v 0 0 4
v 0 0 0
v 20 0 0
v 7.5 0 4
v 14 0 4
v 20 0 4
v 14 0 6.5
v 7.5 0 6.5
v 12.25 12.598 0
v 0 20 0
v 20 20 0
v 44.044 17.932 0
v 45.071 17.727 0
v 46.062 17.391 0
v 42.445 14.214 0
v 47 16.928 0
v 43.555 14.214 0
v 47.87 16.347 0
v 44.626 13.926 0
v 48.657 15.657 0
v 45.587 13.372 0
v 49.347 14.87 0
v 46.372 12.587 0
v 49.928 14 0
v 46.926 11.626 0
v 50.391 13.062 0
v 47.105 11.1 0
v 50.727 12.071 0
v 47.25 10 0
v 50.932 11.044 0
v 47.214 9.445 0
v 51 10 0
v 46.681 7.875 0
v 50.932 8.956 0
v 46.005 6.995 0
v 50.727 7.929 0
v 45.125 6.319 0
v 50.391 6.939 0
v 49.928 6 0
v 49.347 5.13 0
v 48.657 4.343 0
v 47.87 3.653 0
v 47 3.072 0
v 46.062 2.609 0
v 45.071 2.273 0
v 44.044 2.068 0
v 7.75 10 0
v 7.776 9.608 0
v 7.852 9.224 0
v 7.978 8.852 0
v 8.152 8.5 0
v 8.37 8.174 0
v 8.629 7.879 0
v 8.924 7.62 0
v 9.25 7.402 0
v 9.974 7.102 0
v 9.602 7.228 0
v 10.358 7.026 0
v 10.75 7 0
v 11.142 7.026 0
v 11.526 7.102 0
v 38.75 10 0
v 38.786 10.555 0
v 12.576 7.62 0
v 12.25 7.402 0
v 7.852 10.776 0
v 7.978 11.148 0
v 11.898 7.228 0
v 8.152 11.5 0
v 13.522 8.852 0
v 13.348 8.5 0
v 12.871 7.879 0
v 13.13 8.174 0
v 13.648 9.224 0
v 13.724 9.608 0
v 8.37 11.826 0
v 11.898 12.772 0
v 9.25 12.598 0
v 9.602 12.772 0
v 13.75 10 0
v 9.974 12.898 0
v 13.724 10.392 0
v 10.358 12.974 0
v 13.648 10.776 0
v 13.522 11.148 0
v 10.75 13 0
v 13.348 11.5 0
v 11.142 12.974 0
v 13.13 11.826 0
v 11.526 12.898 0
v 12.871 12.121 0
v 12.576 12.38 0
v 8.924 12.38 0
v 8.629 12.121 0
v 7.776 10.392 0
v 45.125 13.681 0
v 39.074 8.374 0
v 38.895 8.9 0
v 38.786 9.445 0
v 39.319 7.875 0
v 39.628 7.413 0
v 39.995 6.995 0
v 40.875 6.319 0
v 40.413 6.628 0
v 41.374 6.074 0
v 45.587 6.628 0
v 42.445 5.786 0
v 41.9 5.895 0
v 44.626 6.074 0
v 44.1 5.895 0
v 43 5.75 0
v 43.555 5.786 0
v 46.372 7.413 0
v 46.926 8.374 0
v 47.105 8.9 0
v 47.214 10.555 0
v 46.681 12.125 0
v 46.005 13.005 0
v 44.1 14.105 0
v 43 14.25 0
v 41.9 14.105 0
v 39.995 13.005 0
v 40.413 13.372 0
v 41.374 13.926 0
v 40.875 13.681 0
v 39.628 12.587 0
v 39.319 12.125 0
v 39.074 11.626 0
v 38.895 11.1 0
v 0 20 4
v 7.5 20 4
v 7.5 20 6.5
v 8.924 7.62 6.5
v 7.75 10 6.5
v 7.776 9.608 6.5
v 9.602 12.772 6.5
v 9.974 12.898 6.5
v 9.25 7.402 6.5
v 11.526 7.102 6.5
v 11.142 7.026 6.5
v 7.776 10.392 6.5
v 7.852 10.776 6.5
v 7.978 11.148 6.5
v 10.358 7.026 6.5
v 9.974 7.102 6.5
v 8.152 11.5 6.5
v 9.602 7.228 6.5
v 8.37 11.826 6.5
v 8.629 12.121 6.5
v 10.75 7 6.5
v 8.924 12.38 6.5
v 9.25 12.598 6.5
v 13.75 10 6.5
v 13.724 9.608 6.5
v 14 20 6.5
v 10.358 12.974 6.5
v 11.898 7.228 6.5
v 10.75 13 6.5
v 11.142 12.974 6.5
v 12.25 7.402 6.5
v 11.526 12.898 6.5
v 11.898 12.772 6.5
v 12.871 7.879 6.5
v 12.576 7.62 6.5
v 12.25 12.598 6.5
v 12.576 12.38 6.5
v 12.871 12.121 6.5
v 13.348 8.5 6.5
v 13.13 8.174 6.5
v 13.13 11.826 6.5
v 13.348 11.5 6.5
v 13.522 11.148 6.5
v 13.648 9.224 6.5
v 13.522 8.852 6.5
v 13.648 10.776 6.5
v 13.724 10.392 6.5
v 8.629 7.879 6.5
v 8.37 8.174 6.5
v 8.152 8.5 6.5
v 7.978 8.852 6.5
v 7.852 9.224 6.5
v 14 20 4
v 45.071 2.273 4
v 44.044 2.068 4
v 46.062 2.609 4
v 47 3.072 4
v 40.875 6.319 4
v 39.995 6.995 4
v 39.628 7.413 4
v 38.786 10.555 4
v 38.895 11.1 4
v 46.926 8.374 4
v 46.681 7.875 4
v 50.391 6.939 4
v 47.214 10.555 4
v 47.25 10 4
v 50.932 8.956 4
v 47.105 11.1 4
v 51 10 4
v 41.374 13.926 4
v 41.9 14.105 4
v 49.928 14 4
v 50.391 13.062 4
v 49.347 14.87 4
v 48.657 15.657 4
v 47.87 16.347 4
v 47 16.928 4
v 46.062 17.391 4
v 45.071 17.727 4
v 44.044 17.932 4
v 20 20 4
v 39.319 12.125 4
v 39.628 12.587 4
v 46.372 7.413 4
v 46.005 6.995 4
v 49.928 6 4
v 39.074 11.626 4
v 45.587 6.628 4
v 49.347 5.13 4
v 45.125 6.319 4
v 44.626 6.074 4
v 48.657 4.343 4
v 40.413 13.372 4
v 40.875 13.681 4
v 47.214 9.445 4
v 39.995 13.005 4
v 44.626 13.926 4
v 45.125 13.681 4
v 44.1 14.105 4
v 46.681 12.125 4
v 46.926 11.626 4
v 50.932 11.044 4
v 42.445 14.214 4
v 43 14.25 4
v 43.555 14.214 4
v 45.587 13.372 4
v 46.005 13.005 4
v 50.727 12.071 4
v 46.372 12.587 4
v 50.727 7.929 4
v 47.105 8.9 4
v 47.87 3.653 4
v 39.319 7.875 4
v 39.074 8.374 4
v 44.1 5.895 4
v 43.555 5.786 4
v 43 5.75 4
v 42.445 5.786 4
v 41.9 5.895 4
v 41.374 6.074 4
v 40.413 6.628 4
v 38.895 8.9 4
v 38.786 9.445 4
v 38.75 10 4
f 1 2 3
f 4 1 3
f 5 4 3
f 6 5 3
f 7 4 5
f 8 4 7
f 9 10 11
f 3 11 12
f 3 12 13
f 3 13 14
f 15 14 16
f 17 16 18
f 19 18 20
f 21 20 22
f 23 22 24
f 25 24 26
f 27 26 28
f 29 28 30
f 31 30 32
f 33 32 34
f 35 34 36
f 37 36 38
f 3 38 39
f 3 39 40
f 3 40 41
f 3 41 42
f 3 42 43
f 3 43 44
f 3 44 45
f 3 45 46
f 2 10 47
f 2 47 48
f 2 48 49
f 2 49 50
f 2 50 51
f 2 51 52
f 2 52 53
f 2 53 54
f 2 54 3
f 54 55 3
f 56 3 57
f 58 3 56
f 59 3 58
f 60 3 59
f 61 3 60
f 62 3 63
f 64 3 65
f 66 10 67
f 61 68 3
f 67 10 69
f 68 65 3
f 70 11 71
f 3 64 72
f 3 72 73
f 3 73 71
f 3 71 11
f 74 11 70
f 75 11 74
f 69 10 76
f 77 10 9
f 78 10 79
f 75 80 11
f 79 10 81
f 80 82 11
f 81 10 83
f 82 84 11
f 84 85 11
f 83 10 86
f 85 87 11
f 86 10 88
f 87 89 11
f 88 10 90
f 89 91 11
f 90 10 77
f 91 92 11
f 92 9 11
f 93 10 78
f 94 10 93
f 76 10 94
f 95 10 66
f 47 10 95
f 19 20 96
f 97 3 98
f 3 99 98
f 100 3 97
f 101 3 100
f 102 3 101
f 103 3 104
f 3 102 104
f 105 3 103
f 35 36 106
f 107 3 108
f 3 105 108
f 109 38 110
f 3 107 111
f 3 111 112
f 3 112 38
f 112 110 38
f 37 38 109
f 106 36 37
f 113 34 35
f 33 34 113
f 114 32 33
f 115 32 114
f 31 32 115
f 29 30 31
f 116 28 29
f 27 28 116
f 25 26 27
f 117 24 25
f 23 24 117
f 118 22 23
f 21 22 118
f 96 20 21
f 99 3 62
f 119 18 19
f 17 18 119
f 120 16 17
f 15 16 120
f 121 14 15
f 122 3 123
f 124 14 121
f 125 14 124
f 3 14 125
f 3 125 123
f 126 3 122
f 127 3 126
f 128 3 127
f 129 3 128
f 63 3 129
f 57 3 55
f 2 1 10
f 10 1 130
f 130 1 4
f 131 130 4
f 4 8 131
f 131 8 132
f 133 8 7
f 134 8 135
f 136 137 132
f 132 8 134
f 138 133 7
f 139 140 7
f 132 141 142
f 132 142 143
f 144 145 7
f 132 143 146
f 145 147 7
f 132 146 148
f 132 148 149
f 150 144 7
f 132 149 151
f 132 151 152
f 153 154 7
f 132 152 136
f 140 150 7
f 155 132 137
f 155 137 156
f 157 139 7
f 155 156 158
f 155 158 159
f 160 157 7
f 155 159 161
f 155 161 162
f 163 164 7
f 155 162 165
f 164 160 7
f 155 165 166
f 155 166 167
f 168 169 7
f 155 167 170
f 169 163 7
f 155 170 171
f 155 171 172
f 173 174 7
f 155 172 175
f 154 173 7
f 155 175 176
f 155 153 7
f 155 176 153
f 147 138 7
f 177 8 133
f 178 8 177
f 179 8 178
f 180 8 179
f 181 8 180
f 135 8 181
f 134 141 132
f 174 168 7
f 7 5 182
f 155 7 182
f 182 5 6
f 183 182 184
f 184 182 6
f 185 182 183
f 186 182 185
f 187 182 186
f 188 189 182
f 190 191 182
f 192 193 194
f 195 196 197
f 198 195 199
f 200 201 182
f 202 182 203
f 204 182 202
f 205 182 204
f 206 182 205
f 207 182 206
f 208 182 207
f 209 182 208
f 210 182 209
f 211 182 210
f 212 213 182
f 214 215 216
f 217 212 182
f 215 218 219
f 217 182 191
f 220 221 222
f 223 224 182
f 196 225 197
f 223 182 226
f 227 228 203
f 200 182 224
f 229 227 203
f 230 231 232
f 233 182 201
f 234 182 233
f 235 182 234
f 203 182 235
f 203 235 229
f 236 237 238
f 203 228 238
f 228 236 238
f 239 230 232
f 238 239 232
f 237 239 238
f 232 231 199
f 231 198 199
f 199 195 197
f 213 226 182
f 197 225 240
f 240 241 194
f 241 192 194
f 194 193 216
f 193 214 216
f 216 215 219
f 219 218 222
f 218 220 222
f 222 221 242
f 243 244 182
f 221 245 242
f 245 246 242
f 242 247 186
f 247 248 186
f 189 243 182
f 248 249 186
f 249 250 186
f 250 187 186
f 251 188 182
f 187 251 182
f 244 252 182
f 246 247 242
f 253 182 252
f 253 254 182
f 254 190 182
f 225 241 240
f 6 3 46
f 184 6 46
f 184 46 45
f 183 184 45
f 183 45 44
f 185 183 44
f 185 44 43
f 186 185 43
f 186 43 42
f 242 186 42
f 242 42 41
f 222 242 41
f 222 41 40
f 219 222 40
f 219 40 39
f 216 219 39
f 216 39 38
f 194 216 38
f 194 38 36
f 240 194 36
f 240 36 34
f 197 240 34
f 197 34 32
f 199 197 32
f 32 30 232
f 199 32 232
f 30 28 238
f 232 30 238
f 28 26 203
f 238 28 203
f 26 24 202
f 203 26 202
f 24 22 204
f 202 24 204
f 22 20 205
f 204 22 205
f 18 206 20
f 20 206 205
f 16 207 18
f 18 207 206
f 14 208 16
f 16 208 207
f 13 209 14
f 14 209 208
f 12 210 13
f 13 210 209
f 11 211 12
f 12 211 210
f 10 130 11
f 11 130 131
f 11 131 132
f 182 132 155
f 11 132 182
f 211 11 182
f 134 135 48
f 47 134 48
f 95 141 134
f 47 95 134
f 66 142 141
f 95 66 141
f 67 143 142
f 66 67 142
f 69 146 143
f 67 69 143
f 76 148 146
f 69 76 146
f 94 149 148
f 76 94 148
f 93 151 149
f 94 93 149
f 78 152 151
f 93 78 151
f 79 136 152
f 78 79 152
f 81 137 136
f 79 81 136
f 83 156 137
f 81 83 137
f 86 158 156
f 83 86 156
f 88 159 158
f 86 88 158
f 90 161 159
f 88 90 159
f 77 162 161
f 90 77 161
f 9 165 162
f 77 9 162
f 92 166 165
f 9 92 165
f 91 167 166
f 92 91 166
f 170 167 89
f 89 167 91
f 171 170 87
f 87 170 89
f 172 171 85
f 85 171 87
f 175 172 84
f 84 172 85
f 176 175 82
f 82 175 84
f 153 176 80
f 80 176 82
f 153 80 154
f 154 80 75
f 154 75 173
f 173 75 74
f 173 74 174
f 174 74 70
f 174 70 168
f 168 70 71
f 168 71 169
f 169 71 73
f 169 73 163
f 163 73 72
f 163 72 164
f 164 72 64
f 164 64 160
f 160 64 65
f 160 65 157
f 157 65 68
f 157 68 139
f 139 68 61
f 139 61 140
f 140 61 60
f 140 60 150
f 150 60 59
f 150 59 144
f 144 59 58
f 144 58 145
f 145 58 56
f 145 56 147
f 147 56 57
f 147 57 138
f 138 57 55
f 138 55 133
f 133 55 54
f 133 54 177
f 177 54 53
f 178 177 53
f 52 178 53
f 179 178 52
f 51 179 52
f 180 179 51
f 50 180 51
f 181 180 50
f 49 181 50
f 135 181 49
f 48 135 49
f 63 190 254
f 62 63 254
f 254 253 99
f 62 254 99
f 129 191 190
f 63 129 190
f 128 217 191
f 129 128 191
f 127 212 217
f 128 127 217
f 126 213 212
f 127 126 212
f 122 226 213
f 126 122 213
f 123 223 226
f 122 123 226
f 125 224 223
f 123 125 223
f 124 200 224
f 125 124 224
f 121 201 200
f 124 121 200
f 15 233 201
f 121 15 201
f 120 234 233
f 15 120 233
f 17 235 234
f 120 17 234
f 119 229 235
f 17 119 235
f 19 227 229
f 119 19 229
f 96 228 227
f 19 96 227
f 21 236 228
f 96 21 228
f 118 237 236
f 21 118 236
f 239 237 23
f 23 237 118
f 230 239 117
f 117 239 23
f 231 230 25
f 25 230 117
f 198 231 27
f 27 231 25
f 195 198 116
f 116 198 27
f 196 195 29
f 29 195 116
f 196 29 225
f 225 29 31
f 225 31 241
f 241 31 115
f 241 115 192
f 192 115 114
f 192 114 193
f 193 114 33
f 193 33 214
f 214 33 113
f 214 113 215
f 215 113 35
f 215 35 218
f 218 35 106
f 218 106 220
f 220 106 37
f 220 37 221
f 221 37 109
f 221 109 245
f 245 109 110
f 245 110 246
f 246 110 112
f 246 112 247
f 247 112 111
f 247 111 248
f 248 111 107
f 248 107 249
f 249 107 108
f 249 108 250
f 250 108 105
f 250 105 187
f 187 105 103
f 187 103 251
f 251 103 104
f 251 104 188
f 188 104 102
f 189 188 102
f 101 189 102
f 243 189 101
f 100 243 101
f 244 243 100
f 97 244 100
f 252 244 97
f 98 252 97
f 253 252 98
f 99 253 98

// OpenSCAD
// Spool mount

$fn=48;
height=43;
thickness=4;
rim=2.5;

difference()
{
	union()
	{
		hull()
		{
			cube([20,20,thickness]);
			translate([height,10,0]) cylinder(d=16, h=thickness);
		}
		translate([7.5,0,0]) cube([6.5,20,thickness+rim]);
	}
	translate([height,10,0]) cylinder(d=8.5,h=thickness);
	translate([10.75,10,0]) cylinder(d=6,h=thickness+rim);
}
